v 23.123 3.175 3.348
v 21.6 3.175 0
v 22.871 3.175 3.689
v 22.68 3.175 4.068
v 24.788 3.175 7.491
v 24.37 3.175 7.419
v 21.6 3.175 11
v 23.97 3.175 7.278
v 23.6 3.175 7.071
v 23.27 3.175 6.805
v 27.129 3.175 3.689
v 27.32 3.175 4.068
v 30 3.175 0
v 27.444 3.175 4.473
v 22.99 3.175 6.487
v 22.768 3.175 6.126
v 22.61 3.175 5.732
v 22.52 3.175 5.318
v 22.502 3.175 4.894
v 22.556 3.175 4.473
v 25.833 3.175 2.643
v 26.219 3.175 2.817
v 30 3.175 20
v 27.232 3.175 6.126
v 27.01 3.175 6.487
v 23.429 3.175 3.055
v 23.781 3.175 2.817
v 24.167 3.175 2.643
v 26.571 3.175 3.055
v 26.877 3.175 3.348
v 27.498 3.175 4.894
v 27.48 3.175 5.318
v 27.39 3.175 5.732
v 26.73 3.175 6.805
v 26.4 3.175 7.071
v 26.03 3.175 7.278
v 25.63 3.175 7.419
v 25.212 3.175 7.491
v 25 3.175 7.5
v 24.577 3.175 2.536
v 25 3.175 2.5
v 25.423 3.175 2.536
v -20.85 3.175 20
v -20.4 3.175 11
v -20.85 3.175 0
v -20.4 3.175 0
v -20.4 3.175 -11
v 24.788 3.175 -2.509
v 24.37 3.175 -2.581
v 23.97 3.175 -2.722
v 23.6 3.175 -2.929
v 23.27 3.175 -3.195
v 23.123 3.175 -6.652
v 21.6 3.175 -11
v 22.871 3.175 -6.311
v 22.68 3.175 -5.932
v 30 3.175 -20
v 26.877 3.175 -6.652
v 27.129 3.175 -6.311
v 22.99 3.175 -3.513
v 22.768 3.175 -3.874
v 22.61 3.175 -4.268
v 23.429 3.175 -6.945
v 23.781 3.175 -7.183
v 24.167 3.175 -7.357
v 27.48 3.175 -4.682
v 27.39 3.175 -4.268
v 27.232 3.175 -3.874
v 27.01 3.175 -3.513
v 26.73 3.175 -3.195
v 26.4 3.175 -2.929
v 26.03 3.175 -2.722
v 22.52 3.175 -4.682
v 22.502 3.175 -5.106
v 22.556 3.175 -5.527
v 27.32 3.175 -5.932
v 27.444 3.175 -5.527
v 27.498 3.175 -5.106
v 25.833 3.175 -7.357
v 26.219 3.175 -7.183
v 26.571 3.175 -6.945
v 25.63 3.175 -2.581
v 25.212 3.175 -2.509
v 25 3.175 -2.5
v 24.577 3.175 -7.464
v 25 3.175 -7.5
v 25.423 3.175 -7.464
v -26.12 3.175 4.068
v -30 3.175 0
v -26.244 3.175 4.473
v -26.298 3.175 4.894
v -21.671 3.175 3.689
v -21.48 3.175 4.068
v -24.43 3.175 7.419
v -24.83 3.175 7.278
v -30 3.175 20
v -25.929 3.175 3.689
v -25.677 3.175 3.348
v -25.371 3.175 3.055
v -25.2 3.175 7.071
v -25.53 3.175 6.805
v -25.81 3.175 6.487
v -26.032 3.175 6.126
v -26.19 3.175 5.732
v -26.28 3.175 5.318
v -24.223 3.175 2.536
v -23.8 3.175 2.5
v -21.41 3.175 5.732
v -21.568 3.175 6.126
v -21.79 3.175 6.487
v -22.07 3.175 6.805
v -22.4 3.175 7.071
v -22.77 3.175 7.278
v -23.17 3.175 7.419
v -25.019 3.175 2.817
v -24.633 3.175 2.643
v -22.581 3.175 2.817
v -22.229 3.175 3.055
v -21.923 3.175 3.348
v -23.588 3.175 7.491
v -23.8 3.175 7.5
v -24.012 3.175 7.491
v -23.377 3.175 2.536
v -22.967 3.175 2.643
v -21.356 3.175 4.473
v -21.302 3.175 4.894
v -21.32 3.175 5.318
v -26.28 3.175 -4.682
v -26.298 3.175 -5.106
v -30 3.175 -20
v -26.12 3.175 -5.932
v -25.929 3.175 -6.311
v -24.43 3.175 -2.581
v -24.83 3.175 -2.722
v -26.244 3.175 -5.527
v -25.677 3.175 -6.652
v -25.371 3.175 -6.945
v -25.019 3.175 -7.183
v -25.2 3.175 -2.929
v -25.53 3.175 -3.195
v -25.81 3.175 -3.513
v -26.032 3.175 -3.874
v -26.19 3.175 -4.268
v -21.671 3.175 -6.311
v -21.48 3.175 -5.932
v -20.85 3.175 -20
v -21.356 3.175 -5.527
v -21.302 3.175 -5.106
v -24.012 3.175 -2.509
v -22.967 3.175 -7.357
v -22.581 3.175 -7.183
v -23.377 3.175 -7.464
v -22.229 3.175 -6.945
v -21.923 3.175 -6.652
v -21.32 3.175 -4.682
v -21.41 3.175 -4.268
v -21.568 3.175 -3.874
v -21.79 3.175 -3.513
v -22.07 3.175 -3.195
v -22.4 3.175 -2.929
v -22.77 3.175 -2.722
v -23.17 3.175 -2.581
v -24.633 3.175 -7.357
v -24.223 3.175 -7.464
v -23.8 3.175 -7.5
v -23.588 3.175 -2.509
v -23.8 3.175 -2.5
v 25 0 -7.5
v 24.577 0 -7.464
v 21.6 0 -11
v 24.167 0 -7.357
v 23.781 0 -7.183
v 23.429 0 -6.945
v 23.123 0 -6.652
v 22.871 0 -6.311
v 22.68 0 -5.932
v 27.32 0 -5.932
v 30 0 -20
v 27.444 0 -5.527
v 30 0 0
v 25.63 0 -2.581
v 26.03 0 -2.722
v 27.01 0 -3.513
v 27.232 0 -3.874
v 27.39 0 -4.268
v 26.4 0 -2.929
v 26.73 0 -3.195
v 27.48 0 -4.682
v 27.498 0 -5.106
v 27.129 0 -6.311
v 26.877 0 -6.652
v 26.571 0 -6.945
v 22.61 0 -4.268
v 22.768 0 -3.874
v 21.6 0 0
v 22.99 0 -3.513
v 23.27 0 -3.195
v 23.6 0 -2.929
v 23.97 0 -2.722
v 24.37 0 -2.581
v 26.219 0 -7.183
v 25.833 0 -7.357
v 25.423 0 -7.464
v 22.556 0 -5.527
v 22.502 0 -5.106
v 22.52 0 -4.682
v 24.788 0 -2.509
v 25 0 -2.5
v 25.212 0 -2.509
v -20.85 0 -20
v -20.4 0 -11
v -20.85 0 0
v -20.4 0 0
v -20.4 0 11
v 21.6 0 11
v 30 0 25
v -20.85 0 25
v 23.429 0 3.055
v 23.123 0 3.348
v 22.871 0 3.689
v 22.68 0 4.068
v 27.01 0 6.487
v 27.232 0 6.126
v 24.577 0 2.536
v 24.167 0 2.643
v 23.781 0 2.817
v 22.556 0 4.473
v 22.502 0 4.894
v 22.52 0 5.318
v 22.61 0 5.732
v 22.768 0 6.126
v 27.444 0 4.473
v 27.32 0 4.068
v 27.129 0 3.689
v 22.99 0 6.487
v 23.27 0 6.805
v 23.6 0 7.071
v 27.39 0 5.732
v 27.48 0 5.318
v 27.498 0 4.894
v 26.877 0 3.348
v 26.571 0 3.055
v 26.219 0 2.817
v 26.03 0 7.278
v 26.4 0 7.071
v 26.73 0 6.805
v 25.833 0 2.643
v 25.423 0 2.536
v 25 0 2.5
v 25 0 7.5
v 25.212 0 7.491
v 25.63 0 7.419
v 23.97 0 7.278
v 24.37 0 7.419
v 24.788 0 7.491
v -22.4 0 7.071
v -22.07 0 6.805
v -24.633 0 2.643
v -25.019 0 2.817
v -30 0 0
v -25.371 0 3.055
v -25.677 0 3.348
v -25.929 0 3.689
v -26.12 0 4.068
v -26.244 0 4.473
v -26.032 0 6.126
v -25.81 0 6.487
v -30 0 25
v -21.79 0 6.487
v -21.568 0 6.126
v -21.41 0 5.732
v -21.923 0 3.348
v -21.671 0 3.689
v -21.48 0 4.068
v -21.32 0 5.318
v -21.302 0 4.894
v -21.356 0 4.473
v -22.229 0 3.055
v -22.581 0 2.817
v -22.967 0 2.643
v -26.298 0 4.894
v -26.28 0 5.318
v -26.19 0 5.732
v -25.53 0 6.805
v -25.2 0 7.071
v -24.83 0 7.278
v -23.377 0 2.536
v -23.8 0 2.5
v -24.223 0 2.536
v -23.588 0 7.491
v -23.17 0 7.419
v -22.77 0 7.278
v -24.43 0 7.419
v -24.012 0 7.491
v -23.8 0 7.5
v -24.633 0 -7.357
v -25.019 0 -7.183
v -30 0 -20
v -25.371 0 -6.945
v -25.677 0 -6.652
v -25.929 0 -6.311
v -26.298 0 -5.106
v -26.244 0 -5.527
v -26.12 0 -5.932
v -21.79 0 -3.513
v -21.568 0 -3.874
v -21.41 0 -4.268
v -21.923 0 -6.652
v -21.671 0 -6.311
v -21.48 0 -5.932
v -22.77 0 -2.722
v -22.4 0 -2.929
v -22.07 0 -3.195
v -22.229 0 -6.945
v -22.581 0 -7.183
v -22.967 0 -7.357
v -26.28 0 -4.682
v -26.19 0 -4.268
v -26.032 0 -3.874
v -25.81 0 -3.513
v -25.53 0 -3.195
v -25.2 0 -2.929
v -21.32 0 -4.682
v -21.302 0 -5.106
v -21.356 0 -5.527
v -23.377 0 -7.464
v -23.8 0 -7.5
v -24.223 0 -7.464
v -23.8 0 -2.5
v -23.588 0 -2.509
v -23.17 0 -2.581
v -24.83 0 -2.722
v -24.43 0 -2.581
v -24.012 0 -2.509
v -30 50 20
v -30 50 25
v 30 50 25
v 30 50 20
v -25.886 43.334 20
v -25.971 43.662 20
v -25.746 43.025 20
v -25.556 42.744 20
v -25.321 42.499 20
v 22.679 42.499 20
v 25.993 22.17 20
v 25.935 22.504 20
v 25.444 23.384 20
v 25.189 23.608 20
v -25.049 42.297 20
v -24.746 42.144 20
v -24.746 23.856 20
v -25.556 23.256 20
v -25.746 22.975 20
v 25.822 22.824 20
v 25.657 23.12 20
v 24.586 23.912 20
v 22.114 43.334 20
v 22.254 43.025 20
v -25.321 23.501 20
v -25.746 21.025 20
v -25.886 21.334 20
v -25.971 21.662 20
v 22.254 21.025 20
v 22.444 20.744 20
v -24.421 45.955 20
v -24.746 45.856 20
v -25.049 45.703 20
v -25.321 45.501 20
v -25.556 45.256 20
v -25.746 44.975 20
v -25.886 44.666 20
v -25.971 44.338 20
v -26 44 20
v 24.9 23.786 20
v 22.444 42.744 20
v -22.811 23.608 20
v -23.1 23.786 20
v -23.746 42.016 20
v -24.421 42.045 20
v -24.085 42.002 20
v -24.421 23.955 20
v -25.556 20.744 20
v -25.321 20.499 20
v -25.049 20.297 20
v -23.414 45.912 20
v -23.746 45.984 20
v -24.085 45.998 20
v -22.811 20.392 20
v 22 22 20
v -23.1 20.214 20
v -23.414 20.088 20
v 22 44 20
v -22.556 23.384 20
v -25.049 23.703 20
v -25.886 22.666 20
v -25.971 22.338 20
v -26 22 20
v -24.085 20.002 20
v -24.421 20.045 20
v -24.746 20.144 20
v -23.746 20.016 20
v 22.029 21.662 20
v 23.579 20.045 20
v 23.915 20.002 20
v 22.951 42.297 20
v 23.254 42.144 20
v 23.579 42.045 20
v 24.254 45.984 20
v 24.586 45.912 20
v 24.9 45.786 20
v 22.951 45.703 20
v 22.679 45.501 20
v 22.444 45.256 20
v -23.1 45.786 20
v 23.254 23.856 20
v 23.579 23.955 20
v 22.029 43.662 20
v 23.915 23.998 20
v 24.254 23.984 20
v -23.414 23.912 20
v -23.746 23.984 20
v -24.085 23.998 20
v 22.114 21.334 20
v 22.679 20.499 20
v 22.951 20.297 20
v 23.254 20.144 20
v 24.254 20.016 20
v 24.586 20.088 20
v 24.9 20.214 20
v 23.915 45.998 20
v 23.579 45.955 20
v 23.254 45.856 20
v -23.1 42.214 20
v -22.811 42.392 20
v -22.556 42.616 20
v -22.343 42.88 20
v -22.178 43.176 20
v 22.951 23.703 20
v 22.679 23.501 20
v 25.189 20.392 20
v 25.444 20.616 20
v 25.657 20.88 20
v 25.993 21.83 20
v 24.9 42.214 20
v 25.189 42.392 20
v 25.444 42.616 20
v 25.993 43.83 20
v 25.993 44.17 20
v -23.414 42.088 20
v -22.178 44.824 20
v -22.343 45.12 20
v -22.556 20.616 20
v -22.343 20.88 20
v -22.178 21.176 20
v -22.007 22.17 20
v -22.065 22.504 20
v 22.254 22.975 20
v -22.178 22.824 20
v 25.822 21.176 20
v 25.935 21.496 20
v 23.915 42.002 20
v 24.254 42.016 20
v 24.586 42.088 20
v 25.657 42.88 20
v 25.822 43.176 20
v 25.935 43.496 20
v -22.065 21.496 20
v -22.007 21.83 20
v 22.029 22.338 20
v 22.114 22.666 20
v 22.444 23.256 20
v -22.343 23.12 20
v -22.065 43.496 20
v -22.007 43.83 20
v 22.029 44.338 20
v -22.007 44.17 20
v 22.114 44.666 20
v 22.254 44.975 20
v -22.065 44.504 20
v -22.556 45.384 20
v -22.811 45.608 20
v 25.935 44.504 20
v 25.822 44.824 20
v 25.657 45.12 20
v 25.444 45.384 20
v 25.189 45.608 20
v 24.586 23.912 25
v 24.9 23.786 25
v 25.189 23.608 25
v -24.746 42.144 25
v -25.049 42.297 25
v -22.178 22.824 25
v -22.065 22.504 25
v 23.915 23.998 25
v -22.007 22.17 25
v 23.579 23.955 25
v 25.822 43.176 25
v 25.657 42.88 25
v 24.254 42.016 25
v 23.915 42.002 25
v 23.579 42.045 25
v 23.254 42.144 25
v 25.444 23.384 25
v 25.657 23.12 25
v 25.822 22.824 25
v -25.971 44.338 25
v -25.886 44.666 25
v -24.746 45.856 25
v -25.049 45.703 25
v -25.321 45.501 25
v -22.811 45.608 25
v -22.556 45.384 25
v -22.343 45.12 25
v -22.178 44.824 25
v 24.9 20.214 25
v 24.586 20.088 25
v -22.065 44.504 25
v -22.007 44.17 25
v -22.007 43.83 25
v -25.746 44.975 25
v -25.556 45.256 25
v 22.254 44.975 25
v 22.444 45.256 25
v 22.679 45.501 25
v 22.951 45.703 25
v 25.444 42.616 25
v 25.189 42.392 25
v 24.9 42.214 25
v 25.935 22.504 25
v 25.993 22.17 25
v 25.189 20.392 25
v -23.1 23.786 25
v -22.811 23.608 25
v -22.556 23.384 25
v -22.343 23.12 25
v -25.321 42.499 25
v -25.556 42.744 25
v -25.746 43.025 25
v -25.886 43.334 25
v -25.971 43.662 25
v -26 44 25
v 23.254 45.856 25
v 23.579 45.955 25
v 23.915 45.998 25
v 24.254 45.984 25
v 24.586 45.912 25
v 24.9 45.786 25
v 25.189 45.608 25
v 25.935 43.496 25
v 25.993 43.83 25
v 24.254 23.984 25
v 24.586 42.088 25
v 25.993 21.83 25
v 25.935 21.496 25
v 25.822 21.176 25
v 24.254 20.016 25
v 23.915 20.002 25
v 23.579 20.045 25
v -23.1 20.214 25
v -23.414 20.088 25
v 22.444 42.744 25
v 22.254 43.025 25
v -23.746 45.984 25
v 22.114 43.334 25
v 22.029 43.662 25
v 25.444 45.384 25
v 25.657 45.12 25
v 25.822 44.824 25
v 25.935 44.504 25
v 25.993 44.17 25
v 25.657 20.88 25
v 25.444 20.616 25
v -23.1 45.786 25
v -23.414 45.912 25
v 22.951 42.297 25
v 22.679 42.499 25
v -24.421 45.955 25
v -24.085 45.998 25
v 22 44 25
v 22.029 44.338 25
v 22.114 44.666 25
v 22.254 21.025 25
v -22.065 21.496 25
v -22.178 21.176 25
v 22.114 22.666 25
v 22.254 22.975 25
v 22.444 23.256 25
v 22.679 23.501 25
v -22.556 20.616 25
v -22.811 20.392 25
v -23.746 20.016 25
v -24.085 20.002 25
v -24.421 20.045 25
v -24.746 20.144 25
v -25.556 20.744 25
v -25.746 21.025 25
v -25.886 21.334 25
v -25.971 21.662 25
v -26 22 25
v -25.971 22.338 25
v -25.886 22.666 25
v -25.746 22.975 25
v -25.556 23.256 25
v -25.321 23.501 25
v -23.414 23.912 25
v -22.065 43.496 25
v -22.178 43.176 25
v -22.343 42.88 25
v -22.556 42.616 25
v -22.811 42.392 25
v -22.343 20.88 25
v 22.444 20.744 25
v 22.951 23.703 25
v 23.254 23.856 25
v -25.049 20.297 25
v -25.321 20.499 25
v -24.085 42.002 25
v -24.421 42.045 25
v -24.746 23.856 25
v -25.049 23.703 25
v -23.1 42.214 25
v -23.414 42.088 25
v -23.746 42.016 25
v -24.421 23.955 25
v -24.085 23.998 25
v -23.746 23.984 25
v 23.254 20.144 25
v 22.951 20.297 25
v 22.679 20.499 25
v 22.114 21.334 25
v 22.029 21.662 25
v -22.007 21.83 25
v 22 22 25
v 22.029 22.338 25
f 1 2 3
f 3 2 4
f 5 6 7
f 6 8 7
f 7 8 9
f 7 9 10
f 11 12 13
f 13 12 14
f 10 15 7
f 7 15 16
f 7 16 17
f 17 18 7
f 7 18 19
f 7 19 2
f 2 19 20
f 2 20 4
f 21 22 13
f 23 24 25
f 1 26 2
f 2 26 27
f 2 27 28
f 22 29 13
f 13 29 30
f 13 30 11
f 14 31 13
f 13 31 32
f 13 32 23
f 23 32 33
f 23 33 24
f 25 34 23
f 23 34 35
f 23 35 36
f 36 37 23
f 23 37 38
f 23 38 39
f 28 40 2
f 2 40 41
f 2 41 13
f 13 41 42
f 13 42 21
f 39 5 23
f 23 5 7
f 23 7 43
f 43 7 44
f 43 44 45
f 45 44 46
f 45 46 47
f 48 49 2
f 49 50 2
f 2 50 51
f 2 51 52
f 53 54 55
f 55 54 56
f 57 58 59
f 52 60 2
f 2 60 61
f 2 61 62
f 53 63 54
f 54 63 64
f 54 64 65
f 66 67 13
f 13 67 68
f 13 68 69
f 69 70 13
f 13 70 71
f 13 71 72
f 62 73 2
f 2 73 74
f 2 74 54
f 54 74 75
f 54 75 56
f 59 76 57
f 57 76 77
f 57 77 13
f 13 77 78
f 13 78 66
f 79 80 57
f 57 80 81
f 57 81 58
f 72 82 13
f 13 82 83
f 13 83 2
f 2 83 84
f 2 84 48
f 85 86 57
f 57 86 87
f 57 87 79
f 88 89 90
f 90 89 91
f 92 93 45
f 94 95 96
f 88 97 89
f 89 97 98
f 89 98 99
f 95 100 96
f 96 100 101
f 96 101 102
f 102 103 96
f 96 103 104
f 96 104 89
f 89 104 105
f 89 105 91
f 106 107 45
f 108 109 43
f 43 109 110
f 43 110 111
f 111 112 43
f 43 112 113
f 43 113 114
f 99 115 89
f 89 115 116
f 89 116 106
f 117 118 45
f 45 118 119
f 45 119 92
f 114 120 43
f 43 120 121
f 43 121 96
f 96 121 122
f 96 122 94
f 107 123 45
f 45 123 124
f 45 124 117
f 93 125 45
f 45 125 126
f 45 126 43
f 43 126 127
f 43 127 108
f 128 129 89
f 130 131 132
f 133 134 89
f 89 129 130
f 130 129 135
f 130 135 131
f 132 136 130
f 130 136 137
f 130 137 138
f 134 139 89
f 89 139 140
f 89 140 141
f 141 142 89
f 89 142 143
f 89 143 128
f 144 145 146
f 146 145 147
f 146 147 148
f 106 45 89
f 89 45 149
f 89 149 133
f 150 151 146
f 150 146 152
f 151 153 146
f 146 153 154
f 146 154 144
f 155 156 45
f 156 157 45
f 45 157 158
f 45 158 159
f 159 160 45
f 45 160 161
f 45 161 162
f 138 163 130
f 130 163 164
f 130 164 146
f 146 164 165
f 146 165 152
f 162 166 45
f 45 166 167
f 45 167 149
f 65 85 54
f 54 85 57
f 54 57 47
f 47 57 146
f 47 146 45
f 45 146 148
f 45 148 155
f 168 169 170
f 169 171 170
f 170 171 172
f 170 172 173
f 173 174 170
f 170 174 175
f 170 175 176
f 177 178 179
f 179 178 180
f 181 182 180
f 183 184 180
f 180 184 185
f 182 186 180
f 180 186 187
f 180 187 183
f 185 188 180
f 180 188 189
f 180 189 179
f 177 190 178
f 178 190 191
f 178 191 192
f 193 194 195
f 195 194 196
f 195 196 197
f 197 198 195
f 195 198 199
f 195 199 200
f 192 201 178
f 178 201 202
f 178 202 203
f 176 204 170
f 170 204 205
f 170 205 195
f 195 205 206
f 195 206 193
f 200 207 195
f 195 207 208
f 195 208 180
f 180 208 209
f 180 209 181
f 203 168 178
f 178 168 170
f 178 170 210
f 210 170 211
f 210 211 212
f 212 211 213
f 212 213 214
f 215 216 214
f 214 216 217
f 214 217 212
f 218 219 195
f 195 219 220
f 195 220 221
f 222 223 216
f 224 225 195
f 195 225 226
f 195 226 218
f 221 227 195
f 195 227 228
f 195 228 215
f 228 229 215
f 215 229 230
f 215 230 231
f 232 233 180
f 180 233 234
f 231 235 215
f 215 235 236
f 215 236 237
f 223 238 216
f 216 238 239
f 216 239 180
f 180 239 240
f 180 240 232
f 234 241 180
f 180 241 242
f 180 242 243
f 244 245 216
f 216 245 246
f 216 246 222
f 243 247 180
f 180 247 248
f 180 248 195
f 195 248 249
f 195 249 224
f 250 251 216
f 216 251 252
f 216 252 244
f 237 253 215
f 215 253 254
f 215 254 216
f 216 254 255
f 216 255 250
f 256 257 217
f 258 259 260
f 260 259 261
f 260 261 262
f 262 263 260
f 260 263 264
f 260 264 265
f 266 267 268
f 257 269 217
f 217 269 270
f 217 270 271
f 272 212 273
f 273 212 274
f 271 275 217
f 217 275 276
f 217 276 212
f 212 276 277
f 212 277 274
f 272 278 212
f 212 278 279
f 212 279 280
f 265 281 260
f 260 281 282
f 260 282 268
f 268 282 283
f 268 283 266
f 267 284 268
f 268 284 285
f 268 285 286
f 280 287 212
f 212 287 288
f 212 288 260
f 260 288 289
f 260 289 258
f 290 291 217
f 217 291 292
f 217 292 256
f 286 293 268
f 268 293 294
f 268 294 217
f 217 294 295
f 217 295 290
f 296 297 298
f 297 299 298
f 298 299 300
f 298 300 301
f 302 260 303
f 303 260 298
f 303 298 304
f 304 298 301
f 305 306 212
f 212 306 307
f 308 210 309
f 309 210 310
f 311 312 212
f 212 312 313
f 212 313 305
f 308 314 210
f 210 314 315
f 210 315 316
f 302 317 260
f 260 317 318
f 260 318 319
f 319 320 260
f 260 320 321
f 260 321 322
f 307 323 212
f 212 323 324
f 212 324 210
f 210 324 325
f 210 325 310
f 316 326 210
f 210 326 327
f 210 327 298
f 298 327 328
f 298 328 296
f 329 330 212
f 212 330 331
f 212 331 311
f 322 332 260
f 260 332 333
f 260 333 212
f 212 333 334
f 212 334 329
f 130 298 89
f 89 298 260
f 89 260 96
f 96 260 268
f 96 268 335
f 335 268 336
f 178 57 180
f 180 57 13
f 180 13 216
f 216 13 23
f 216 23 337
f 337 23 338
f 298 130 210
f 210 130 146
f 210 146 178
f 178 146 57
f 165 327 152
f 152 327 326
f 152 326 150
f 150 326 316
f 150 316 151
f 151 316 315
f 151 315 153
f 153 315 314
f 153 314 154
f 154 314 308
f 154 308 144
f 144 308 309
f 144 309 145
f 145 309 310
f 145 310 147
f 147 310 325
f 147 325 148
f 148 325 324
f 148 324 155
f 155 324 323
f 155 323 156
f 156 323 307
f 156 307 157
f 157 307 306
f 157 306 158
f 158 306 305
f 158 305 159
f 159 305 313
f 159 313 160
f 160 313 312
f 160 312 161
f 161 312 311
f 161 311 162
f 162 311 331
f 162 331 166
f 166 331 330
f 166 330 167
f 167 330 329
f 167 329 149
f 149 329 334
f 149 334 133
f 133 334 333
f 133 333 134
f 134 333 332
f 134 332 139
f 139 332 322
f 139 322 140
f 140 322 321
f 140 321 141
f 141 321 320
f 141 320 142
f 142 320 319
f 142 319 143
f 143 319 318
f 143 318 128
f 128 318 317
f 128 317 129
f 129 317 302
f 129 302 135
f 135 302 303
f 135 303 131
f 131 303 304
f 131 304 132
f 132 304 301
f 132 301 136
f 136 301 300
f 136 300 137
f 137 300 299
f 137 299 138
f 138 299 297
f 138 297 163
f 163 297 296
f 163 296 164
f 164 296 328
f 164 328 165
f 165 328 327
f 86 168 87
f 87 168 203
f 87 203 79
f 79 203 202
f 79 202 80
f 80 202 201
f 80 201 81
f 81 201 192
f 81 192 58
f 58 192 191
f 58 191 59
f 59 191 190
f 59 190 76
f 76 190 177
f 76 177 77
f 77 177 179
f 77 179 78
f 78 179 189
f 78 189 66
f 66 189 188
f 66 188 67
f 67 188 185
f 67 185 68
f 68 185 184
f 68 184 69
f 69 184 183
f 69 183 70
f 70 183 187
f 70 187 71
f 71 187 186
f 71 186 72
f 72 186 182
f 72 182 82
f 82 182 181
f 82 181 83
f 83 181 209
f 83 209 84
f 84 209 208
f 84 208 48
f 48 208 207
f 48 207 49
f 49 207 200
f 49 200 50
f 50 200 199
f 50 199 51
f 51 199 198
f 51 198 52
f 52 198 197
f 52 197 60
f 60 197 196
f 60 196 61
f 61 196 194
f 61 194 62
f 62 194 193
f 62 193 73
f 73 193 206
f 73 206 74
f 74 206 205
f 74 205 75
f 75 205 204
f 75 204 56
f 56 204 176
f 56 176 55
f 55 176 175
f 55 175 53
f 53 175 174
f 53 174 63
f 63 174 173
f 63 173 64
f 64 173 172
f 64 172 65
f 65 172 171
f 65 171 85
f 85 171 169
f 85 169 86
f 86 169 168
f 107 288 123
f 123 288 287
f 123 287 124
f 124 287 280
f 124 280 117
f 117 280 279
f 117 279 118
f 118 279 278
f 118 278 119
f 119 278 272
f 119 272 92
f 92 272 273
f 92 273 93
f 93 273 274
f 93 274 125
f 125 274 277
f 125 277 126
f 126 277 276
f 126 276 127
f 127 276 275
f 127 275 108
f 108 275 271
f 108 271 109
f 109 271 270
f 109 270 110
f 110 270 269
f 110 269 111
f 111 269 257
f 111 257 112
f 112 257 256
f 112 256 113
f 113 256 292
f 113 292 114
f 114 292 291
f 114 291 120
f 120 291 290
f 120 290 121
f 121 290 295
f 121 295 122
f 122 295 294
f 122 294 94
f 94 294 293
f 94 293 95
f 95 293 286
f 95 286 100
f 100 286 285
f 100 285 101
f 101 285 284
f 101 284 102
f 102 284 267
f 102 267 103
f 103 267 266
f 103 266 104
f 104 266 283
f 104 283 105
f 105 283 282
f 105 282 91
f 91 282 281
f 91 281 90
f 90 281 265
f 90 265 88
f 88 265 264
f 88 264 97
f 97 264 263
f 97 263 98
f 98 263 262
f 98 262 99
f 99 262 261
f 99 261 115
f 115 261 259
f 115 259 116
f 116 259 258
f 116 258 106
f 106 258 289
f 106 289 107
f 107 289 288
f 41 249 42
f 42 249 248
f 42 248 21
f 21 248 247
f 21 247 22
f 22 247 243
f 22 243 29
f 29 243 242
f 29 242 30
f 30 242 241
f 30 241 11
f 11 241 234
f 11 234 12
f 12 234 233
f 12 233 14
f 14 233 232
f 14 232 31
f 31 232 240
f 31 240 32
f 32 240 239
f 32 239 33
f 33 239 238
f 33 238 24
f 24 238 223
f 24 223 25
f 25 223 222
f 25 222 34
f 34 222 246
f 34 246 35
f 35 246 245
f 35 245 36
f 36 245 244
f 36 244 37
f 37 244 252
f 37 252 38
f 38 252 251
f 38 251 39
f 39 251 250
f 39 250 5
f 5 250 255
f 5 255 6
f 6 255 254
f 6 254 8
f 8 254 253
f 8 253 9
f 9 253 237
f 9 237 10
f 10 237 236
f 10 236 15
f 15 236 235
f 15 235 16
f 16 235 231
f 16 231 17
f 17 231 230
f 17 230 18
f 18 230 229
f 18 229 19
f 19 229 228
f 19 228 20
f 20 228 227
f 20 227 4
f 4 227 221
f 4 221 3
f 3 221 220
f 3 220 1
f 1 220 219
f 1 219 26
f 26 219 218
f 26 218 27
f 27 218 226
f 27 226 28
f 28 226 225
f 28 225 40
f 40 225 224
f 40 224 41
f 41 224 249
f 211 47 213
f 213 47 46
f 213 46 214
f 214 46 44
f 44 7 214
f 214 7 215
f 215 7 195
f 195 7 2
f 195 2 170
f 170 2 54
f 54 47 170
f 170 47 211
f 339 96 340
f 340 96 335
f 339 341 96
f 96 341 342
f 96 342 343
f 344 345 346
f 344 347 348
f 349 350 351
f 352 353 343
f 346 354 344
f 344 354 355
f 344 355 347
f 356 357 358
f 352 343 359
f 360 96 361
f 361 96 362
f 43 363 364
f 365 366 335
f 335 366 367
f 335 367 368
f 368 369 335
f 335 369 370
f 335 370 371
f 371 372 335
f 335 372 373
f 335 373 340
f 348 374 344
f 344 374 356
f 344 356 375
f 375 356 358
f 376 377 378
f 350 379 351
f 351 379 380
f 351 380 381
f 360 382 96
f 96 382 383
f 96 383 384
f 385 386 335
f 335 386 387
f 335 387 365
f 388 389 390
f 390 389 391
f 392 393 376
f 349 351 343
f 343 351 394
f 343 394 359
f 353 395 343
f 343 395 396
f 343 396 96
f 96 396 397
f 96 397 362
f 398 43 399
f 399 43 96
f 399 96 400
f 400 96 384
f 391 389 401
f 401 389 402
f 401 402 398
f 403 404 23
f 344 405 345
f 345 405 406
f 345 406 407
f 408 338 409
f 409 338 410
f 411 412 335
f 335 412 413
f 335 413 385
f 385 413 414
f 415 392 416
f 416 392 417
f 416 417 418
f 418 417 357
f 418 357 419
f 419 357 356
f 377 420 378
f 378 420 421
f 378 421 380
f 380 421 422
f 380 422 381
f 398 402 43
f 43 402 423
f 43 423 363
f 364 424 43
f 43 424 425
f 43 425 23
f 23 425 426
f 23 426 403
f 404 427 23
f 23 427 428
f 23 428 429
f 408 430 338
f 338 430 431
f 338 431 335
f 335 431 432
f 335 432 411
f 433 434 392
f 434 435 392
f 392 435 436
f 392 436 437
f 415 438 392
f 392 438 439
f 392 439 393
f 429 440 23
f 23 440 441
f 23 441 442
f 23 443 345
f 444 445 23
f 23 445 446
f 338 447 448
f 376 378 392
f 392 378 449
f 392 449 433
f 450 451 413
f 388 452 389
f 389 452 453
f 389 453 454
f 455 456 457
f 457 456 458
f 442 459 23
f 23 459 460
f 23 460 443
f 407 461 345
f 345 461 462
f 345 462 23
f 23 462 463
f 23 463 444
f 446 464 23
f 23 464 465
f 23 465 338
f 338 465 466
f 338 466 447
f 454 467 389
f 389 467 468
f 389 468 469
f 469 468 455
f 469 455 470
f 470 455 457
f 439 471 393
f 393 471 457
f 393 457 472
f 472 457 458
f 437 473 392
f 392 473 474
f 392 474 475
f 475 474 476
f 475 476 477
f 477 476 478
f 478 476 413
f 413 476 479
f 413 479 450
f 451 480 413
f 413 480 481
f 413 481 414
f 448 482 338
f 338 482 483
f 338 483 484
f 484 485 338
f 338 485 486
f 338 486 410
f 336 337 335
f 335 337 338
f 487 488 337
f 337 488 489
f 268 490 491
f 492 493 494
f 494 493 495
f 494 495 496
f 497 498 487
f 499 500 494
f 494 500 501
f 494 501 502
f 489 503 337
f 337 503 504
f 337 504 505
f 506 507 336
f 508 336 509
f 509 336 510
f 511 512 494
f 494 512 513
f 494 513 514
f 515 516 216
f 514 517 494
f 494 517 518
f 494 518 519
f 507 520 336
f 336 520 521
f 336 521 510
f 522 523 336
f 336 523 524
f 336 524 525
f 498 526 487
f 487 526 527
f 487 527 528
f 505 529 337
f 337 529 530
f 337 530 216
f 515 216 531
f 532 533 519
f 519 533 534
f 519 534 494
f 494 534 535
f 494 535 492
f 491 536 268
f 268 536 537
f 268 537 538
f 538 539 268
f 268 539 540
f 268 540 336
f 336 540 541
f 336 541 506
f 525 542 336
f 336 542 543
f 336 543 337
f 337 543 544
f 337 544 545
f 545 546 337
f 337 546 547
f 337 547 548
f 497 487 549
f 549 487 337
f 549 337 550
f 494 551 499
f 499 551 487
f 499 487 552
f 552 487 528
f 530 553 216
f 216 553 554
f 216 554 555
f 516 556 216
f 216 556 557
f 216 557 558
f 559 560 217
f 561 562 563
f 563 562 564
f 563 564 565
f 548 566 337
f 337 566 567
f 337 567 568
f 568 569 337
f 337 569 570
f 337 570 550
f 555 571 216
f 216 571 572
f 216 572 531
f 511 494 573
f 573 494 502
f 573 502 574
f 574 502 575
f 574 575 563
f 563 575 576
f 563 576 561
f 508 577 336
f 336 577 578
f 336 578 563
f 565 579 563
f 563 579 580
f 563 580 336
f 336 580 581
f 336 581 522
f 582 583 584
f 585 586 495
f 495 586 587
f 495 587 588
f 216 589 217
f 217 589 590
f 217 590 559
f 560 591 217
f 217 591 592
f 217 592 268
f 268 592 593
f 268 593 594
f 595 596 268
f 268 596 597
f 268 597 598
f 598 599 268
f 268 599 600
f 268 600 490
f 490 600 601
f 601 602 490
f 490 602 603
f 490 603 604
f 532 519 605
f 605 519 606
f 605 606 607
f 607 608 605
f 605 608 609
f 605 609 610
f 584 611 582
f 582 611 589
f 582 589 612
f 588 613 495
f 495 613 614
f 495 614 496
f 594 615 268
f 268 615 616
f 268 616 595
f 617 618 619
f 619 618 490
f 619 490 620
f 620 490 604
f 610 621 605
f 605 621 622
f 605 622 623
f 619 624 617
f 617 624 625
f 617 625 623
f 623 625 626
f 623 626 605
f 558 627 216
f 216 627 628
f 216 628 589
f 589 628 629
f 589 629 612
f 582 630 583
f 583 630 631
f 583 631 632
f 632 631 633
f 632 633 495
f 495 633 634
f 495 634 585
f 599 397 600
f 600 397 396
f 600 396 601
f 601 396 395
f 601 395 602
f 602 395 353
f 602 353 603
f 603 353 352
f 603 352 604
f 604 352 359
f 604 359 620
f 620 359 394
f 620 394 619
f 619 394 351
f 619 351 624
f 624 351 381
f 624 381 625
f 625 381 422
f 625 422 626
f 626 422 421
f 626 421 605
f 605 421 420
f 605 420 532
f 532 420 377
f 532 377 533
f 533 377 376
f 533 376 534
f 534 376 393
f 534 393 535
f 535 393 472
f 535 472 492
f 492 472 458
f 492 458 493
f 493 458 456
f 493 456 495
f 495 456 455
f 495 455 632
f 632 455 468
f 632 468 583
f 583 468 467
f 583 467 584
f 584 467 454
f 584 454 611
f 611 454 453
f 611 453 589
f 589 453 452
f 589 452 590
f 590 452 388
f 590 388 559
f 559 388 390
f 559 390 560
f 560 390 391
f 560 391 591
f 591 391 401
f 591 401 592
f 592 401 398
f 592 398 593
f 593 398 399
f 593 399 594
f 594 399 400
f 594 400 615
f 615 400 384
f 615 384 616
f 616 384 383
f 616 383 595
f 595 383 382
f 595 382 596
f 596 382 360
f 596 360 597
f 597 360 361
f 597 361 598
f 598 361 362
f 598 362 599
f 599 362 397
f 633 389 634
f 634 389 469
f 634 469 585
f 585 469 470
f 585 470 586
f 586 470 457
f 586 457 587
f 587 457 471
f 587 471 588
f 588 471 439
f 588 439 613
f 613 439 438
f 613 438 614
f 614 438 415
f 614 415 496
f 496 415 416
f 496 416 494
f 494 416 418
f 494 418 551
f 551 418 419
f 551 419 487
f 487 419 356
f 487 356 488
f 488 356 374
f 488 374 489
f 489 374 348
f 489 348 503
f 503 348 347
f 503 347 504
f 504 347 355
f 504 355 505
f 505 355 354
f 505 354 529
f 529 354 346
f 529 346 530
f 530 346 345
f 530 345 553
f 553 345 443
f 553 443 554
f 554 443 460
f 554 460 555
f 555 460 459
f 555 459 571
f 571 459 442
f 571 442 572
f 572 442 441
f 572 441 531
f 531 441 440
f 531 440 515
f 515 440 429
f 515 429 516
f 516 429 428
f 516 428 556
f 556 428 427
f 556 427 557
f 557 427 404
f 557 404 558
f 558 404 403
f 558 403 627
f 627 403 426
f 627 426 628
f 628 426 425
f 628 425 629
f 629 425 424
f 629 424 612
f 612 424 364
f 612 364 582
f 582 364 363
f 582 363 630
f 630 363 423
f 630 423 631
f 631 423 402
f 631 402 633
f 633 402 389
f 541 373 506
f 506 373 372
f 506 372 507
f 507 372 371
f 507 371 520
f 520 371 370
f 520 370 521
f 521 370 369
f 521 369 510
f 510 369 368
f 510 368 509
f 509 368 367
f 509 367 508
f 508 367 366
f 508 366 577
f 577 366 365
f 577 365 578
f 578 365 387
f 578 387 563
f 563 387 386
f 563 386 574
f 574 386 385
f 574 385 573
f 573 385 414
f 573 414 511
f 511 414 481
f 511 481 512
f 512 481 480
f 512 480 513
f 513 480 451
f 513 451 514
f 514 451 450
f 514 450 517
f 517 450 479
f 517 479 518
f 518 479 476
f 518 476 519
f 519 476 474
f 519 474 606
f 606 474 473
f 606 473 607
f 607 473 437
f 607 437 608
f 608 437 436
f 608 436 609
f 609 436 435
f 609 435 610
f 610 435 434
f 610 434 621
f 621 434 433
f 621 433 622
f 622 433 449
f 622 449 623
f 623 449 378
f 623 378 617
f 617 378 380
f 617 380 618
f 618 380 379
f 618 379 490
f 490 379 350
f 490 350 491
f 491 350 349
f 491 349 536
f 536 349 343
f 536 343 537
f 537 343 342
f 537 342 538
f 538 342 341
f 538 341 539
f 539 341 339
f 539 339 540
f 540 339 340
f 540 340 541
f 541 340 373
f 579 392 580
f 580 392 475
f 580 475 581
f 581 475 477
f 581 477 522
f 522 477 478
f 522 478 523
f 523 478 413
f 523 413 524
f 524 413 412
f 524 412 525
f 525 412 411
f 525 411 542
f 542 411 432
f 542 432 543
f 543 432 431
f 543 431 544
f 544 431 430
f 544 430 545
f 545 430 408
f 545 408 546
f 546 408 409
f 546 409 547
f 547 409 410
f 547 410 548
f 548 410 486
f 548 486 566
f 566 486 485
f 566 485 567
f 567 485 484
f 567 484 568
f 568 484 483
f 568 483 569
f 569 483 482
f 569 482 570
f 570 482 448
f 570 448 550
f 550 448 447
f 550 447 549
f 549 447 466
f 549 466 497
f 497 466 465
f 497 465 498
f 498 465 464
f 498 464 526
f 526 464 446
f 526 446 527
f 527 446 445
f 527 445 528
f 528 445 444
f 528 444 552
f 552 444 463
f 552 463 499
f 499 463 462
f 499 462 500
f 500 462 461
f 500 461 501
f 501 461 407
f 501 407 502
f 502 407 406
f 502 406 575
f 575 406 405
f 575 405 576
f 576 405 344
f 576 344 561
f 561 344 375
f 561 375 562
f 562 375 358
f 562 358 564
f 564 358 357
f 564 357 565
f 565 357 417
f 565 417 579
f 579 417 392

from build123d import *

# Parameters (mm, degrees)
SKETCH1_W             = 60
SKETCH1_H             = 40
SKETCH1_R             = 2.5
SKETCH1_W_2           = 42
SKETCH1_H_2           = 22
BOSS_EXTRUDE1_DEPTH   = 3.175
SKETCH2_W             = 60
SKETCH2_H             = 50
BOSS_EXTRUDE2_DEPTH   = 5
F_4_0MM_DOWEL_HOLE1_D = 4


with BuildPart() as part:
    # Sketch1 → Boss-Extrude1 (new body)
    with BuildSketch(Plane(origin=(0, 0, 0), x_dir=(1, 0, 0), z_dir=(0, 1, 0))):
        Rectangle(SKETCH1_W, SKETCH1_H)
        with Locations(Location((25, 5, 0), (0, 0, 270))):
            Circle(SKETCH1_R, mode=Mode.SUBTRACT)
        with Locations(Location((-23.8, 5, 0), (0, 0, 270))):
            Circle(SKETCH1_R, mode=Mode.SUBTRACT)
        with Locations(Location((-23.8, -5, 0), (0, 0, 270))):
            Circle(SKETCH1_R, mode=Mode.SUBTRACT)
        with Locations(Location((25, -5, 0), (0, 0, 270))):
            Circle(SKETCH1_R, mode=Mode.SUBTRACT)
        with Locations((0.6, 0)):
            Rectangle(SKETCH1_W_2, SKETCH1_H_2, mode=Mode.SUBTRACT)
    extrude(amount=BOSS_EXTRUDE1_DEPTH)

    # Sketch2 → Boss-Extrude2 (add)
    with BuildSketch(Plane.XY.offset(20)):
        with Locations((0, 25)):
            Rectangle(SKETCH2_W, SKETCH2_H)
    extrude(amount=BOSS_EXTRUDE2_DEPTH)

    # Ø4.0mm Dowel Hole1 (through all)
    with Locations(Plane(origin=(0, 0, 20), x_dir=(-1, 0, 0), z_dir=(0, 0, -1))):
        with Locations((-24, 44), (24, 44), (-24, 22), (24, 22)):
            Hole(F_4_0MM_DOWEL_HOLE1_D / 2)


solid = part.part
